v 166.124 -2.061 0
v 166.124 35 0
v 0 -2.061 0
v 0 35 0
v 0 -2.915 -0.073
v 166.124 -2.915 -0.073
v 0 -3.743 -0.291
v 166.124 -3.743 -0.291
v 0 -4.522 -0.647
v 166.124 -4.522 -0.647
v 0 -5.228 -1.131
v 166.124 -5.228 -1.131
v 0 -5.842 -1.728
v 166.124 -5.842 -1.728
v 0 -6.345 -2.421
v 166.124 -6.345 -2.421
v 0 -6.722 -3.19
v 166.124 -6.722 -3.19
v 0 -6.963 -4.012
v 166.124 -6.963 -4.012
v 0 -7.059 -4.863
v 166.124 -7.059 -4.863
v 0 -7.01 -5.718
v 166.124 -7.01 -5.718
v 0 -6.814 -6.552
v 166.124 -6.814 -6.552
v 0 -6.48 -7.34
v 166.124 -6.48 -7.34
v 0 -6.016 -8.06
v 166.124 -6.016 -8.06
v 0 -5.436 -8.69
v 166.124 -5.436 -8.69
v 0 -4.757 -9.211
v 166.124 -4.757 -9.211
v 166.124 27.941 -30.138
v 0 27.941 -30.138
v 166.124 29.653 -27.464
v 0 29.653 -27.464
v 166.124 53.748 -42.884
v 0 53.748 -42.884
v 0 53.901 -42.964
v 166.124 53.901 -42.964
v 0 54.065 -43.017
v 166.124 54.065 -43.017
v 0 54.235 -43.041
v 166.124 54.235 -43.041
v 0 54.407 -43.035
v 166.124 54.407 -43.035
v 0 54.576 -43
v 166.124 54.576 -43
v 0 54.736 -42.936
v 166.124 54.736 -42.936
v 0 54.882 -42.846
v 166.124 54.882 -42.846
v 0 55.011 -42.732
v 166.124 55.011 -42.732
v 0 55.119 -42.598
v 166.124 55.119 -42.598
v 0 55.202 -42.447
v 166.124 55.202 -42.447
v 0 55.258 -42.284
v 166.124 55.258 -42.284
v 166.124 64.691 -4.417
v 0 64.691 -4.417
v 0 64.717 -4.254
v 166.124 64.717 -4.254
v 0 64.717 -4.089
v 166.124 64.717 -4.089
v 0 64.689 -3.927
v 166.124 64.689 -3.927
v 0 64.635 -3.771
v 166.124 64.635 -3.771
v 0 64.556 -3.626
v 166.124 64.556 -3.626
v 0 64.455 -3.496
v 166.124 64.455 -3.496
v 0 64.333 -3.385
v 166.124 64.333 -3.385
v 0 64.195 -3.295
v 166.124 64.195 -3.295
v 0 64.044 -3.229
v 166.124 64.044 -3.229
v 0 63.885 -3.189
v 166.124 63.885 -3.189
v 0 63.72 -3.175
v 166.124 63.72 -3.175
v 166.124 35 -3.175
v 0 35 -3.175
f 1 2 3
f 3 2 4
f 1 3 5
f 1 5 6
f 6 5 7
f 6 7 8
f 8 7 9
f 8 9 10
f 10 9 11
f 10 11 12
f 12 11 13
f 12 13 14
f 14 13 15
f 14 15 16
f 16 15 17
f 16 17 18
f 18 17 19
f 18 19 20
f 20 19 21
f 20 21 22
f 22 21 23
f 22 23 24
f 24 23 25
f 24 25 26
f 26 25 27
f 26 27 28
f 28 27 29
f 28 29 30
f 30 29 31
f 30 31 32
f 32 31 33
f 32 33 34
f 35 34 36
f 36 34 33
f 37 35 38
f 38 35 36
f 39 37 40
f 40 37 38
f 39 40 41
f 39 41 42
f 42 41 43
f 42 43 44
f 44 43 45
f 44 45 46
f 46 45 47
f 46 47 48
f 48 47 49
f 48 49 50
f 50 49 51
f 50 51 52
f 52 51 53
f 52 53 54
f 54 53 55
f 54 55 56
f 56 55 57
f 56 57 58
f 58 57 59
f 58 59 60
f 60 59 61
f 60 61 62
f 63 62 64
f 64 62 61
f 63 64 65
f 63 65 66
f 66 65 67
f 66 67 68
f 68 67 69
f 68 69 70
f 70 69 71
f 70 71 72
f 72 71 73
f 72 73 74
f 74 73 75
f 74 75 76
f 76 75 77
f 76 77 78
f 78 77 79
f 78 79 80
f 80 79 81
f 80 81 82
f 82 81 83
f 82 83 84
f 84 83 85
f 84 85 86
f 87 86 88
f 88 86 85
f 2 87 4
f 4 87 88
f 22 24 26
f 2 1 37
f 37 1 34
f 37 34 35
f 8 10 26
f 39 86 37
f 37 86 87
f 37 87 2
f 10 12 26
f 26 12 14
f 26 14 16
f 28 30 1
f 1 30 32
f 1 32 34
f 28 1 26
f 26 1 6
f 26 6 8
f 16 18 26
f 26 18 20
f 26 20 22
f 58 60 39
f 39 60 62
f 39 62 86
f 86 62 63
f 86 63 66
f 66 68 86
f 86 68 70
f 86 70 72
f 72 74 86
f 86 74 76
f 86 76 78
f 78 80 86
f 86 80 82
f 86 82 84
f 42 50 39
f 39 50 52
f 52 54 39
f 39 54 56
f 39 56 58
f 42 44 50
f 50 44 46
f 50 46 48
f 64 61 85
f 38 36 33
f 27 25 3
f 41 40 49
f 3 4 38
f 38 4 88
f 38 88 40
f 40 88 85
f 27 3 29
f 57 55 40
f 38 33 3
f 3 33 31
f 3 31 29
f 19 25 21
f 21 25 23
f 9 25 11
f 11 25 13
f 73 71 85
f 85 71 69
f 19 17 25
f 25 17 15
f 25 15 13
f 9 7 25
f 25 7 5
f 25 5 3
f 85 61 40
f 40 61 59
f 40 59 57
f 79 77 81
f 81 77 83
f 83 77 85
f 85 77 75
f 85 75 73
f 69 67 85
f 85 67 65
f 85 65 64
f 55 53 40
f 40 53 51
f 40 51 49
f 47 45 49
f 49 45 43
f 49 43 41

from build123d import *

# Parameters (mm, degrees)
BOSS_EXTRUDE1_DEPTH = 166.124


with BuildPart() as part:
    # Sketch1 → Boss-Extrude1 (new body)
    with BuildSketch(Plane(origin=(0, 0, 0), x_dir=(0, 0, -1), z_dir=(1, 0, 0))):
        with BuildLine():
            Line((0, 35), (3.175, 35))
            Line((3.175, 35), (3.175, 63.720329141))
            ThreePointArc((3.175, 63.720329141), (3.559257641, 64.508276695), (4.416722694, 64.690674512))
            Line((4.416722694, 64.690674512), (42.283933187, 55.257575303))
            ThreePointArc((42.283933187, 55.257575303), (42.971366415, 54.656918005), (42.88448418, 53.748179809))
            Line((42.88448418, 53.748179809), (27.463573236, 29.652781316))
            Line((27.463573236, 29.652781316), (30.137792194, 27.941297175))
            Line((30.137792194, 27.941297175), (9.211368438, -4.756545468))
            ThreePointArc((9.211368438, -4.756545468), (3.595870766, -6.860088565), (0, -2.061294853))
            Line((0, -2.061294853), (0, 35))
        make_face()
    extrude(amount=BOSS_EXTRUDE1_DEPTH)


solid = part.part
